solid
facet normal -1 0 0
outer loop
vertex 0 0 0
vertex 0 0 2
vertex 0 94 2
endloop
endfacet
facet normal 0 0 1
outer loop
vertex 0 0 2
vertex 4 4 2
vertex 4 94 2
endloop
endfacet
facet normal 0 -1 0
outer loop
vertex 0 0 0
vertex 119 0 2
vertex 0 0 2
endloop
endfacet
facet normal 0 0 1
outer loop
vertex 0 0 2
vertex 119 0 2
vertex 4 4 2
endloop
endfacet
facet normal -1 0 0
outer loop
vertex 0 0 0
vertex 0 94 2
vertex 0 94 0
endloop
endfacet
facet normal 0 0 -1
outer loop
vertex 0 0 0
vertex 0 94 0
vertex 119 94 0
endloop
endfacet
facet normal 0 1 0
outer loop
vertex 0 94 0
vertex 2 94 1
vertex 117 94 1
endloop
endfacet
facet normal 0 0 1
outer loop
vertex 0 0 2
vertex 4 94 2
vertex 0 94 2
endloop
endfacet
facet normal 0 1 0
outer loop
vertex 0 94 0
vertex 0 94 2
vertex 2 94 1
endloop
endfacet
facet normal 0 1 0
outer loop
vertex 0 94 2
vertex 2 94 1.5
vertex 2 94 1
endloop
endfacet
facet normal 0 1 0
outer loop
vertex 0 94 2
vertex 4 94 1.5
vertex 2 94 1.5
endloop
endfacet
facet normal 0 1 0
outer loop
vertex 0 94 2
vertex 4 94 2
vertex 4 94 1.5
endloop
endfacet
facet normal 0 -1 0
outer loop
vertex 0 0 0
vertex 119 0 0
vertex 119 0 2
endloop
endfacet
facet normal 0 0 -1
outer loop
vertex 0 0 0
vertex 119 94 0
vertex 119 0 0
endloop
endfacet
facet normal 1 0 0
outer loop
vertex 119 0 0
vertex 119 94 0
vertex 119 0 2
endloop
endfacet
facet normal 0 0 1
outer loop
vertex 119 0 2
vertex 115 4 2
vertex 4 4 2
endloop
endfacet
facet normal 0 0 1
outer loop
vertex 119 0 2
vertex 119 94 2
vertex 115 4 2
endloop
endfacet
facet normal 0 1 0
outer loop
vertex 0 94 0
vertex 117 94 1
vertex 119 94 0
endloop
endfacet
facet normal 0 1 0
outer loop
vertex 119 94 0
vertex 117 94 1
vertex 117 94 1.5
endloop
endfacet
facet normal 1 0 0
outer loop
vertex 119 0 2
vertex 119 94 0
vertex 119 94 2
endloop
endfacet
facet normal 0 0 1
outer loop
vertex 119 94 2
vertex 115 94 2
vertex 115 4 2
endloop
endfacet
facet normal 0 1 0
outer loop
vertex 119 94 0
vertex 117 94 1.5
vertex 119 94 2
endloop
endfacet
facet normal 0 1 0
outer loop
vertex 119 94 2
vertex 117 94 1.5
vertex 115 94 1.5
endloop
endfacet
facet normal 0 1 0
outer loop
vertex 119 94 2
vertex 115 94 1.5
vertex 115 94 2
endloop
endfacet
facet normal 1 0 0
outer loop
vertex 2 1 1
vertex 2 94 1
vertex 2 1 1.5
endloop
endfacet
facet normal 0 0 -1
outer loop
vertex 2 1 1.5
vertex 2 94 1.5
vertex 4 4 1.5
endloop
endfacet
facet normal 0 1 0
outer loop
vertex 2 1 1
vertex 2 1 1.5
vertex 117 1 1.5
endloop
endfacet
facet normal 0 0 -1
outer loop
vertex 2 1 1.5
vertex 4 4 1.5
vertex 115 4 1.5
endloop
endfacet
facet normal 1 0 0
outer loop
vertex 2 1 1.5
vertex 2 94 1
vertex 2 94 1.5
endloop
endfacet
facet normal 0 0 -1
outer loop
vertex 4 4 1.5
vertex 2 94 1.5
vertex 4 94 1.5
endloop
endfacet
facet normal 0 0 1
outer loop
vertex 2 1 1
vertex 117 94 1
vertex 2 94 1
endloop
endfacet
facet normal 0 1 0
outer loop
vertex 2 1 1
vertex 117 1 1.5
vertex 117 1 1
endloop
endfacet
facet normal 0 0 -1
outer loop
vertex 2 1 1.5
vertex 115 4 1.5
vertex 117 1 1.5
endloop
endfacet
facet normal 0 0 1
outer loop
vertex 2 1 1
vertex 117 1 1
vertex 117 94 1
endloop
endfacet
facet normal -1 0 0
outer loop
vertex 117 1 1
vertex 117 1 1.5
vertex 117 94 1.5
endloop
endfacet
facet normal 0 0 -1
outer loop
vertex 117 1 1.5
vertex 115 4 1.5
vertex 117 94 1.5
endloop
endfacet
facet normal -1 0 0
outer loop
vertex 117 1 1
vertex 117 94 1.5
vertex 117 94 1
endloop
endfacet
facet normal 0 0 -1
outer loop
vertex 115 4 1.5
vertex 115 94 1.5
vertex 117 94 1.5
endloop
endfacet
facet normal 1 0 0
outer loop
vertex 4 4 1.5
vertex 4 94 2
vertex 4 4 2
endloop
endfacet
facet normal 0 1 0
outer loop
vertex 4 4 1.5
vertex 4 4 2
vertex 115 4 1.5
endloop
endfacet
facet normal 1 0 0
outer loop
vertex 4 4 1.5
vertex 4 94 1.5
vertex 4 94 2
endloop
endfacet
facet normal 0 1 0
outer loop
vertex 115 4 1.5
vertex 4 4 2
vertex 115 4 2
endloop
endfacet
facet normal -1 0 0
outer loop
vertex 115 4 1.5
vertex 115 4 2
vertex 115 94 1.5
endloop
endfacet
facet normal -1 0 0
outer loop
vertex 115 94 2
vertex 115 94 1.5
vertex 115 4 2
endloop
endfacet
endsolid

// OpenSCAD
// holder for coffee description from HappyMug.com
//print vertically to avoid overhang issues

// insert dimensions
width = 115;
height = 90;

// backplane
difference() {
cube([width+4, height+4, 2]);
// insert
#translate([2,1,1]) {
  color("red")
  cube([width, height+4, 0.5]);
}
//window
translate([4,4,1]) {
  color("blue")
  #cube([width-4, height, 2.5]);
  }
}
